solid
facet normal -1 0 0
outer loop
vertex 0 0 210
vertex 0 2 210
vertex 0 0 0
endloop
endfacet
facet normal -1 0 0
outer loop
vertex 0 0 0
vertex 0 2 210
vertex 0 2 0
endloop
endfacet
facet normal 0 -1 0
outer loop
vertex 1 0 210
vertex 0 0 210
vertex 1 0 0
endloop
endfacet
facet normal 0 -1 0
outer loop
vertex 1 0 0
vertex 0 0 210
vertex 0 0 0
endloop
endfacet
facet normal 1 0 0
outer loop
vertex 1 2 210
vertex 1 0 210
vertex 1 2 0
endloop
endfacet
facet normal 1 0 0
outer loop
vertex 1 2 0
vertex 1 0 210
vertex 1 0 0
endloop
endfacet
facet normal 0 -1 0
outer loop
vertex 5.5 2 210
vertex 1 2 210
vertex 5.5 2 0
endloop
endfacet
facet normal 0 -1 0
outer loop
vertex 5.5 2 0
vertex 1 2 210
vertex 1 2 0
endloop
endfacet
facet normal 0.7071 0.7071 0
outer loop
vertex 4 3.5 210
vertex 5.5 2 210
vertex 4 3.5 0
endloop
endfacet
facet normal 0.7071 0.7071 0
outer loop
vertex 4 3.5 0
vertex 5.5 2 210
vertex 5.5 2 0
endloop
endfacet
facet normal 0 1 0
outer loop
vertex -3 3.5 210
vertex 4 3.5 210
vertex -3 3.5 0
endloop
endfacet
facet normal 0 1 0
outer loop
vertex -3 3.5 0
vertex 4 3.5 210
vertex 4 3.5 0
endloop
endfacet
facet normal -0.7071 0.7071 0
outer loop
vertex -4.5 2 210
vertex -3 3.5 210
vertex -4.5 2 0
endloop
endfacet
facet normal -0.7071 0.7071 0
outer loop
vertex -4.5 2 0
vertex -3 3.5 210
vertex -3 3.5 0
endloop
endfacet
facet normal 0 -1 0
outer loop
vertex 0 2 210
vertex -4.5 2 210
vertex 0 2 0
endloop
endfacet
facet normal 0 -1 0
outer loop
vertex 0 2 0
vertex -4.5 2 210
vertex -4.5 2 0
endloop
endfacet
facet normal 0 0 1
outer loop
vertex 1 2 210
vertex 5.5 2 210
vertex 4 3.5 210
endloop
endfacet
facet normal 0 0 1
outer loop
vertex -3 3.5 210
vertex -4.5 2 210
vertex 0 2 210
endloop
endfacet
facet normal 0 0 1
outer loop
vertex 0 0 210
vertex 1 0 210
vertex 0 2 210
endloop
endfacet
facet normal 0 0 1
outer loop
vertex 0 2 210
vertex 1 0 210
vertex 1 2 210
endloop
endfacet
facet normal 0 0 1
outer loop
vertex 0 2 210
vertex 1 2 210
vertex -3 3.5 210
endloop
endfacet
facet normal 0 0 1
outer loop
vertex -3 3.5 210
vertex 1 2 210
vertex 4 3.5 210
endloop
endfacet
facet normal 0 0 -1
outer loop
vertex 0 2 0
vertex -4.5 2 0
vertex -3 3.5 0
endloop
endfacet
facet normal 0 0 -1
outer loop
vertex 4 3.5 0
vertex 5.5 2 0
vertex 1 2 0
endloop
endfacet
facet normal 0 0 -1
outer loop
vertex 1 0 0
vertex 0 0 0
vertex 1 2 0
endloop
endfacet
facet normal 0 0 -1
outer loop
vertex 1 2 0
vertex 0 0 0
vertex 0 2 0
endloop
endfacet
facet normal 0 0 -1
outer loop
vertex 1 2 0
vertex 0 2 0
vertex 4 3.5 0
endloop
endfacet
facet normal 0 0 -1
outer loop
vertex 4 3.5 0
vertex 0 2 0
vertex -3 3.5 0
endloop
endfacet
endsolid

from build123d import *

# Parameters (mm, degrees)
COVER_CONNECTOR_DEPTH = 210


with BuildPart() as part:
    # Sketch1 → cover_connector (new body)
    with BuildSketch(Plane.XY):
        Polygon((0, 0), (1, 0), (1, 2), (5.5, 2), (4, 3.5), (-3, 3.5), (-4.5, 2), (0, 2), align=None)
    extrude(amount=COVER_CONNECTOR_DEPTH)


solid = part.part
